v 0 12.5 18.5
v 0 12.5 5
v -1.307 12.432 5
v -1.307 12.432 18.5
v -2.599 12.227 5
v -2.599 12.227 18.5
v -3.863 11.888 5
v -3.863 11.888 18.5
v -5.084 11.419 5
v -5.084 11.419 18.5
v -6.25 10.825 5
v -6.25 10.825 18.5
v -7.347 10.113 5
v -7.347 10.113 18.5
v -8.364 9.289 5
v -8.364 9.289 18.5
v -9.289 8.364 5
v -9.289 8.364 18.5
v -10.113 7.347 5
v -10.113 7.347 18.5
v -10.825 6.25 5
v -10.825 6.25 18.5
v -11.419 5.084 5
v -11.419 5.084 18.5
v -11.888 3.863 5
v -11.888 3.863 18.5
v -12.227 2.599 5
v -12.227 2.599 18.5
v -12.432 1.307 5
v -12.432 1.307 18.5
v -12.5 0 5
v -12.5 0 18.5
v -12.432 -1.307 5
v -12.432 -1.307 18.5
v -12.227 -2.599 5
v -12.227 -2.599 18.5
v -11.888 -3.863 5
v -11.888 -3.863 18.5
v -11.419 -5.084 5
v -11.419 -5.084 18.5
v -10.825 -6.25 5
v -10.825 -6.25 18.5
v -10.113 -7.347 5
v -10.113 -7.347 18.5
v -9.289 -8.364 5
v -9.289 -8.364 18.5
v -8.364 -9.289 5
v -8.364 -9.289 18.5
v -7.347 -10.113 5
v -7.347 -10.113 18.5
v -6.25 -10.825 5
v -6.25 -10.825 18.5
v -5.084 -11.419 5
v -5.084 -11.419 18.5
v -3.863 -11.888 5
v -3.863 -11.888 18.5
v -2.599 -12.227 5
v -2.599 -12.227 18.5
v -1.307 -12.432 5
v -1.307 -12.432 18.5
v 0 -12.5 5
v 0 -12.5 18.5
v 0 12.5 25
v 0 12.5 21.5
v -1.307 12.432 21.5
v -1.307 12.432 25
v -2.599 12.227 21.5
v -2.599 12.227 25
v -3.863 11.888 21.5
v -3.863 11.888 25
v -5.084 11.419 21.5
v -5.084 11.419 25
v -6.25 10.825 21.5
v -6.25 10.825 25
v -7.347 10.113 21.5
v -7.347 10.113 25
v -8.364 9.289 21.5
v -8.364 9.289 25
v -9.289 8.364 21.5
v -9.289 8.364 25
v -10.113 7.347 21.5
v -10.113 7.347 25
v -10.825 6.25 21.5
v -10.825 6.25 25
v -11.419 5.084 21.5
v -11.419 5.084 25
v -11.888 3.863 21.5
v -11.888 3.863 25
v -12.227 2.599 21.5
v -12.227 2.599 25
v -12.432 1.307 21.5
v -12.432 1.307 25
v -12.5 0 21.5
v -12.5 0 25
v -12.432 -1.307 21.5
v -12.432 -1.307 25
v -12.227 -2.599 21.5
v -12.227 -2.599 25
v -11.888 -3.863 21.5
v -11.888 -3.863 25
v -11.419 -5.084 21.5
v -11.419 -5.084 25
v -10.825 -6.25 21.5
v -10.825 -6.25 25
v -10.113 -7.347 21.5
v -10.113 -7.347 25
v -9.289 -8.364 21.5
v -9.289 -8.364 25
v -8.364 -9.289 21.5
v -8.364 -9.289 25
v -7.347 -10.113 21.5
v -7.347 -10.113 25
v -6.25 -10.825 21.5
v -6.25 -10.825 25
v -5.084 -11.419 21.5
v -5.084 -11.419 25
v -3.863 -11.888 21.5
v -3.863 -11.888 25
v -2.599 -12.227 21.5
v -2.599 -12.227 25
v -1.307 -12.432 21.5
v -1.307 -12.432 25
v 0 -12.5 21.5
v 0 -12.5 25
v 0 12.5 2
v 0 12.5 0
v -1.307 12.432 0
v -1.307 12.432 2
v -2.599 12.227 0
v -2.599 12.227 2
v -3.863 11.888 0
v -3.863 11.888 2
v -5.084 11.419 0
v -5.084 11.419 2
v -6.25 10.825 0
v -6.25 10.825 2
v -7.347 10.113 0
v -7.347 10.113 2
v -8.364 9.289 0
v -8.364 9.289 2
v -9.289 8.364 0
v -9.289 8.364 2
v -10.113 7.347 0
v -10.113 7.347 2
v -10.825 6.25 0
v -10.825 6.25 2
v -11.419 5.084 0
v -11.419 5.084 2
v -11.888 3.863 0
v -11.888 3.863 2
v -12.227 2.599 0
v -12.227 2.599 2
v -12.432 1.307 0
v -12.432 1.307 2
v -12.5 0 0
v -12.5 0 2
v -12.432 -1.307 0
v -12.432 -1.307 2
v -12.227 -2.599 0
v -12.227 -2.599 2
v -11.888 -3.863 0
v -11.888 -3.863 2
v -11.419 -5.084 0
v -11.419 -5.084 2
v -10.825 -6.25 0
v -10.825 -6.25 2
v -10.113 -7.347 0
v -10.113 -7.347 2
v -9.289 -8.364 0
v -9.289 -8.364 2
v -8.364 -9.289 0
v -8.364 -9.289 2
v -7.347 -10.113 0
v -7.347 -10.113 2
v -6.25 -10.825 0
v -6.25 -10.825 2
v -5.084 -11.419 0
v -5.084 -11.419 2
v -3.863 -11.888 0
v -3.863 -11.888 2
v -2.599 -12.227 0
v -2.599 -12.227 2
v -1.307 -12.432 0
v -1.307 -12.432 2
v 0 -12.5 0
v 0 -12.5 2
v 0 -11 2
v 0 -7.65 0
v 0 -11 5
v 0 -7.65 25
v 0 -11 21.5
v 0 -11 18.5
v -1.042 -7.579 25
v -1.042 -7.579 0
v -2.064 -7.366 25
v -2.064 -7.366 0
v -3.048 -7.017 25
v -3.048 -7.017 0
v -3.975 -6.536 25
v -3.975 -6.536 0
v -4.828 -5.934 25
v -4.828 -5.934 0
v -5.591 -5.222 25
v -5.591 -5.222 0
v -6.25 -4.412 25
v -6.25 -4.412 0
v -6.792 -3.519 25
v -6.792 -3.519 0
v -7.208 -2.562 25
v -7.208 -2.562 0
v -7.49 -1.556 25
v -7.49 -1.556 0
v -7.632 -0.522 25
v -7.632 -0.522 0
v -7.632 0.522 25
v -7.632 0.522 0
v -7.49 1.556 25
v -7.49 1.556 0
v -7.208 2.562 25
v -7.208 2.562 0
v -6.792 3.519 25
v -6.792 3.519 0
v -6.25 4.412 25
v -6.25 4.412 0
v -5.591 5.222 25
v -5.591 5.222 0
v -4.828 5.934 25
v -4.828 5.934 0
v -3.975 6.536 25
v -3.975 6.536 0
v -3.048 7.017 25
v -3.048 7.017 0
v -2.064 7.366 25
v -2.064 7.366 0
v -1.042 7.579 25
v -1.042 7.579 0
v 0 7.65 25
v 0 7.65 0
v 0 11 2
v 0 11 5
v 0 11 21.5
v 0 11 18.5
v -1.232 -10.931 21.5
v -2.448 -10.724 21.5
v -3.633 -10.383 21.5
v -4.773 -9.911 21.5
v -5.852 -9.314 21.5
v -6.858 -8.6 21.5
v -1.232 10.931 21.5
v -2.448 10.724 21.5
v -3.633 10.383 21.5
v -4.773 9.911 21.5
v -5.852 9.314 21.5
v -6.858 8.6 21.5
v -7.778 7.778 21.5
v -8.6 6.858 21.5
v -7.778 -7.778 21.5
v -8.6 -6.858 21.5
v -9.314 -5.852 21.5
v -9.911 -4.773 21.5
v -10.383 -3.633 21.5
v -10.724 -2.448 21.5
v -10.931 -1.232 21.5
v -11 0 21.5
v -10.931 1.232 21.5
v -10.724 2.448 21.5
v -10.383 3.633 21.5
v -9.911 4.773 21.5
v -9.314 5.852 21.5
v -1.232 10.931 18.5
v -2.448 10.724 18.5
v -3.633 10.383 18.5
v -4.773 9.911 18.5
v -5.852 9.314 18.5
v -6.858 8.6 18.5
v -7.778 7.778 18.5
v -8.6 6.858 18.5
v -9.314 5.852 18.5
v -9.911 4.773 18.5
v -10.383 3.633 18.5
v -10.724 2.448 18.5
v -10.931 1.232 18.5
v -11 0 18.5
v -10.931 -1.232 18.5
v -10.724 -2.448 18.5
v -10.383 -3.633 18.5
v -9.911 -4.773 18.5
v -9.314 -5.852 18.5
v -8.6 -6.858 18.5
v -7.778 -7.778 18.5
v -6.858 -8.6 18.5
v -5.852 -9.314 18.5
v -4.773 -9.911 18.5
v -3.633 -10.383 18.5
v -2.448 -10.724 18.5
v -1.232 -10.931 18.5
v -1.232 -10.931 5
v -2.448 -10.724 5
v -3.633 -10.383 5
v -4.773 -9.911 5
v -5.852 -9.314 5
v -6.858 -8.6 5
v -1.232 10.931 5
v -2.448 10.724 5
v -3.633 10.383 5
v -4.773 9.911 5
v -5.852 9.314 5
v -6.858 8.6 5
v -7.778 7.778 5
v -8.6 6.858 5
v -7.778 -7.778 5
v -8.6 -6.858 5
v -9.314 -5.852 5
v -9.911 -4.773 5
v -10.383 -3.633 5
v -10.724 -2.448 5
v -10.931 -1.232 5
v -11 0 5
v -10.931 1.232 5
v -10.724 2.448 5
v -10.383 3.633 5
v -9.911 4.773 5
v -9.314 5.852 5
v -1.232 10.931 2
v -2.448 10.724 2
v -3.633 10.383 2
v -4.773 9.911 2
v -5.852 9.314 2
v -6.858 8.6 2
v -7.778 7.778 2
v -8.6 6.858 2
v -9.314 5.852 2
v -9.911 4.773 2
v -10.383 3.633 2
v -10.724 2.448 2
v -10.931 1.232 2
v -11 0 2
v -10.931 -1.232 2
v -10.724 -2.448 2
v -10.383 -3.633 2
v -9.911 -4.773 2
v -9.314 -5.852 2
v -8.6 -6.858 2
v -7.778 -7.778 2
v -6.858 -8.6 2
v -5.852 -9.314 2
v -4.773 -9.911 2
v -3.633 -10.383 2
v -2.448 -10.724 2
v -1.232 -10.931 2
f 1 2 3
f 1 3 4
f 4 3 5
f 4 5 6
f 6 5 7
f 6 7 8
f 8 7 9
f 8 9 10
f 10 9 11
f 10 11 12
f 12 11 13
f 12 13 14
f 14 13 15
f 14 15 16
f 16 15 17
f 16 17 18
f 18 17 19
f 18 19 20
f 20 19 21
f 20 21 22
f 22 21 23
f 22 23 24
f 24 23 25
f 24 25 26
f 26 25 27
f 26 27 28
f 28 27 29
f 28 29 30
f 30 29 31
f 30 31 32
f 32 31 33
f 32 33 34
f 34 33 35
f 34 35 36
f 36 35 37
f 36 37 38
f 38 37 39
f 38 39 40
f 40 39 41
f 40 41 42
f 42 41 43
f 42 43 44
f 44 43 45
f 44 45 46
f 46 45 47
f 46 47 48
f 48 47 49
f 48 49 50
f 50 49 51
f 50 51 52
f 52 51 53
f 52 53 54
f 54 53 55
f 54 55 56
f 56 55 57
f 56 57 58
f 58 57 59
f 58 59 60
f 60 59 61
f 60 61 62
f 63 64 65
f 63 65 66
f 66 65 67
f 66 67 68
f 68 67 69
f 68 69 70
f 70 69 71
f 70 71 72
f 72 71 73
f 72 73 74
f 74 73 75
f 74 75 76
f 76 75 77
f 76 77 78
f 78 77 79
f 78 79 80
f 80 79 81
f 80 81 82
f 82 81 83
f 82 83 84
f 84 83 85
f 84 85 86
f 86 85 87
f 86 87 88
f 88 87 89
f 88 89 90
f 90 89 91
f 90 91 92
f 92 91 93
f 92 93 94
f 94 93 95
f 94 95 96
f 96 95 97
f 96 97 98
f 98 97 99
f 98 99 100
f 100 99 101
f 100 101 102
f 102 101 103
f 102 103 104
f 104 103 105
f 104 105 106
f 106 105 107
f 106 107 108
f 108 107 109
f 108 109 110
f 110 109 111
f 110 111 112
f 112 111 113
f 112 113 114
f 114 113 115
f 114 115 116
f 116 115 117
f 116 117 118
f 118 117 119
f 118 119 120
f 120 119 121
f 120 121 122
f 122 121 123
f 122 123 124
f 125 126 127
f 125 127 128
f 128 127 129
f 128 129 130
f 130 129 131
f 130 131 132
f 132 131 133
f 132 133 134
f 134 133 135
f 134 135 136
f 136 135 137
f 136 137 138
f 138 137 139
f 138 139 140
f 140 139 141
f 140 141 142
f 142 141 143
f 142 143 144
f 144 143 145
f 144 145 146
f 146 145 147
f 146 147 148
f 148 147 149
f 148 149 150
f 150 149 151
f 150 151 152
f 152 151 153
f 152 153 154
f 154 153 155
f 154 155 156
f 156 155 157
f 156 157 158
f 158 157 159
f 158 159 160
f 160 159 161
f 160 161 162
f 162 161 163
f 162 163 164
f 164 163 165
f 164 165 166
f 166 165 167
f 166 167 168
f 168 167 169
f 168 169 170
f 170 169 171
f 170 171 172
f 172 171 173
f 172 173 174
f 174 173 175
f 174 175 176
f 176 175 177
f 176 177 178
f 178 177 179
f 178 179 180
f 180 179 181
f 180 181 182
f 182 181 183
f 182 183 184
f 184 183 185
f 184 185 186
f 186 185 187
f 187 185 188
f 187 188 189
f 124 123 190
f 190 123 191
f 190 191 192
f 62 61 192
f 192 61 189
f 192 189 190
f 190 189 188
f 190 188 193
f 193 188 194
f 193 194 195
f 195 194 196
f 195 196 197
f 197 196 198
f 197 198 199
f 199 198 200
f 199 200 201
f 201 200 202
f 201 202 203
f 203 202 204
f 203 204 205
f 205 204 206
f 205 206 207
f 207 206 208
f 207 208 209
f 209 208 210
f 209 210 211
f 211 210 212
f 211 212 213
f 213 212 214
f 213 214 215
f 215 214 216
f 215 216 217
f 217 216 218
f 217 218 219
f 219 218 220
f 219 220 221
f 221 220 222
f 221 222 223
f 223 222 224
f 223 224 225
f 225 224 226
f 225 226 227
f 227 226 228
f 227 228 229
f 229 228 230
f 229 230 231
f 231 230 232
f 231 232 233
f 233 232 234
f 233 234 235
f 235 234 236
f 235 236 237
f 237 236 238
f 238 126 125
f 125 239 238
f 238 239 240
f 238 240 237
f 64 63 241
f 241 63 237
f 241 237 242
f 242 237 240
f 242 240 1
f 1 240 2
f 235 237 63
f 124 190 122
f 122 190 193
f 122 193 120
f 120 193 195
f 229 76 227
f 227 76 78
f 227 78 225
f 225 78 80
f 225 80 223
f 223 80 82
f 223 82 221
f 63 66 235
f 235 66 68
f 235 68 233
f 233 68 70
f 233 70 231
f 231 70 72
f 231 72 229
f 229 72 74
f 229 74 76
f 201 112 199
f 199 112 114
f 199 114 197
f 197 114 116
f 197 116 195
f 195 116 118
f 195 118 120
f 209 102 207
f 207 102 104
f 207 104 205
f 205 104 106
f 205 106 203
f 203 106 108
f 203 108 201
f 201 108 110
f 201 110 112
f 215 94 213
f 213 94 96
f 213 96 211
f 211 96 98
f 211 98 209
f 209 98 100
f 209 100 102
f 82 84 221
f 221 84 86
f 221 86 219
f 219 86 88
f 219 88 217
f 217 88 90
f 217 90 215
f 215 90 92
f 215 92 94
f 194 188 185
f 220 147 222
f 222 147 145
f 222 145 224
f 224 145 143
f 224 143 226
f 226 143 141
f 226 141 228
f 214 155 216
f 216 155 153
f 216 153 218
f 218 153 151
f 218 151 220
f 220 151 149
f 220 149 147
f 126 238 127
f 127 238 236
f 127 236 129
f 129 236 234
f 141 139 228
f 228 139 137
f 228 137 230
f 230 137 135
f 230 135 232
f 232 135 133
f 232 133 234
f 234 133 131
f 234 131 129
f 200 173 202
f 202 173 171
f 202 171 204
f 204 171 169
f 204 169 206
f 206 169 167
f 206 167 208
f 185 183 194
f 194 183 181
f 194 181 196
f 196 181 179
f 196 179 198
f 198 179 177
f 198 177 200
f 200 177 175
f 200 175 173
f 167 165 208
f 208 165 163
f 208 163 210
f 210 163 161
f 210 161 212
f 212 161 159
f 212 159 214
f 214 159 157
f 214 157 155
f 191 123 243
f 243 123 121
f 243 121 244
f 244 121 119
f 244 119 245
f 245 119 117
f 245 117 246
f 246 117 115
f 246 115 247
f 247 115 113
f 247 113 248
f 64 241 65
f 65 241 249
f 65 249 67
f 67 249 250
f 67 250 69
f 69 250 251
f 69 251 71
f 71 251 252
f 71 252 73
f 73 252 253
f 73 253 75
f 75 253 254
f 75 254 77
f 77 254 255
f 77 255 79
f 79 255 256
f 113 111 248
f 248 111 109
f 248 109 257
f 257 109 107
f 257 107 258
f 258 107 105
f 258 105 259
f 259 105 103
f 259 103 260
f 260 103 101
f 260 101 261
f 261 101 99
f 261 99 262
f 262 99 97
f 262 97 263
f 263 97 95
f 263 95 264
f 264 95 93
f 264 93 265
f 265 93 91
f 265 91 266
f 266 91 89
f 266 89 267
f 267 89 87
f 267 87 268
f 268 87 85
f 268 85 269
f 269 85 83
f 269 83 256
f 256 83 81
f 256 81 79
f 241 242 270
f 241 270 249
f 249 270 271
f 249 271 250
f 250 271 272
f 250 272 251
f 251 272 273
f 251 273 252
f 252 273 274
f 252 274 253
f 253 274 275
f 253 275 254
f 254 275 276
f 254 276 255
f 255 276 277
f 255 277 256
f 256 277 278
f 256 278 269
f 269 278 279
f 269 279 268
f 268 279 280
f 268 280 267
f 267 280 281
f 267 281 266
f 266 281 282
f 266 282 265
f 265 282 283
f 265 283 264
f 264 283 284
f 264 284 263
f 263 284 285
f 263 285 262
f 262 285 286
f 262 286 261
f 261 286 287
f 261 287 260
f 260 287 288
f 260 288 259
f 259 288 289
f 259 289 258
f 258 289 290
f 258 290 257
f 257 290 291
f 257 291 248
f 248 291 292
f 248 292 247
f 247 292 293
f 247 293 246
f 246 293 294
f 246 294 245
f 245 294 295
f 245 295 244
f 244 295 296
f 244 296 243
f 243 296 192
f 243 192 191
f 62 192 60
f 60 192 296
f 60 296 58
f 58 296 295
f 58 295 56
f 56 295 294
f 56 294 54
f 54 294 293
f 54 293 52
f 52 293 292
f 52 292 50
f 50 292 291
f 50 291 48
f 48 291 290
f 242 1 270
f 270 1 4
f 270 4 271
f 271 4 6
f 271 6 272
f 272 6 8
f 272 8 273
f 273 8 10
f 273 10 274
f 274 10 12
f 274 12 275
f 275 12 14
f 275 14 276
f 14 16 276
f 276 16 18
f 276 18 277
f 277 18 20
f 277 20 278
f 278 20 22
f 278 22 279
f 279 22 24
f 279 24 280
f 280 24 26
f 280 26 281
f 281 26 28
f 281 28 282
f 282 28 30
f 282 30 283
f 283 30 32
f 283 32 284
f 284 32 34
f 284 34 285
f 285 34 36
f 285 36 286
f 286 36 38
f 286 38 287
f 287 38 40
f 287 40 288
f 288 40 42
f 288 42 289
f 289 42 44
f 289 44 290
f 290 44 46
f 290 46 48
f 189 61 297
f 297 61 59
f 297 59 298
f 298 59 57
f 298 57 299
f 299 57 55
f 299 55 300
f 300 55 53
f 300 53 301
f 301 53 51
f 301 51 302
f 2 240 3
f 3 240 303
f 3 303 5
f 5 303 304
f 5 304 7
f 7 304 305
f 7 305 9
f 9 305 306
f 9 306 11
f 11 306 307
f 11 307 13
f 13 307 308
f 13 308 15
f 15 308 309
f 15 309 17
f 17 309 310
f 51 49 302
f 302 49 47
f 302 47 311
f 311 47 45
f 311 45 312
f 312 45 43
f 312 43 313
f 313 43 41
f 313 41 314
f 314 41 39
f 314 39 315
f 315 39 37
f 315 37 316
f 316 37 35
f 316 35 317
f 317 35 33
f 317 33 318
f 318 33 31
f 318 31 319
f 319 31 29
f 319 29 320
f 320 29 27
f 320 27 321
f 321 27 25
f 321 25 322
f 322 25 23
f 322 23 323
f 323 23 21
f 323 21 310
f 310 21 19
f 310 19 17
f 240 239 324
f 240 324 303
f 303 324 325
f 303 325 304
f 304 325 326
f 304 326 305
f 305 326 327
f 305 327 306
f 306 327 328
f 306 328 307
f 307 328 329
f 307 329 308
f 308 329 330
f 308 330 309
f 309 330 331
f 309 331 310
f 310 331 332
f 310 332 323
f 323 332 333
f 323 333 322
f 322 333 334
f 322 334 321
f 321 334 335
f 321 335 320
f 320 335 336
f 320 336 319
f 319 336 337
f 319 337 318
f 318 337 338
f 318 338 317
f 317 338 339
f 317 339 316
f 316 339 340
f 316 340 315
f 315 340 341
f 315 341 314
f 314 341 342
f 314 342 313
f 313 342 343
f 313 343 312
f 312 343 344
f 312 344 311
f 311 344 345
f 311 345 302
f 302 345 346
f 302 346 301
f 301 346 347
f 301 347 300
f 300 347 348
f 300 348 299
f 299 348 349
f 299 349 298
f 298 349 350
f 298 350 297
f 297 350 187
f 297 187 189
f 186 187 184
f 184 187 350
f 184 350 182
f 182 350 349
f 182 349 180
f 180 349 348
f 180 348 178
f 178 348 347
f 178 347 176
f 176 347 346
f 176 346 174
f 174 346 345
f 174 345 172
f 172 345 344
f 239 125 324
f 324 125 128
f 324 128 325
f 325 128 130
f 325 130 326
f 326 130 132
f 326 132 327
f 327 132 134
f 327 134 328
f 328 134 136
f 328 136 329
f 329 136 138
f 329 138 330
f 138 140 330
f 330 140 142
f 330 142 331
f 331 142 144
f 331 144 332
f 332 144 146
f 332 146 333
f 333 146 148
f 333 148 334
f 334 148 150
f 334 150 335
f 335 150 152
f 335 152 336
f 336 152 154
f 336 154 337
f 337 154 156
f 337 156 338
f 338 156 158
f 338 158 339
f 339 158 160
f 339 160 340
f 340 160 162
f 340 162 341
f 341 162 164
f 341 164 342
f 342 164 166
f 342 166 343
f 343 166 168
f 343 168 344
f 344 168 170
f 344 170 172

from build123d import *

# Parameters (mm, degrees)
Y_KSEKLIK_EKSTR_ZYON1_DEPTH = 25
IZIM2_W                     = 3
IZIM2_H                     = 1.5


with BuildPart() as part:
    # Çizim1 → Yükseklik-Ekstrüzyon1 (new body)
    with BuildSketch(Plane.XY):
        with BuildLine():
            Line((0, 12.5), (0, 7.65))
            ThreePointArc((0, 7.65), (-7.65, 0), (0, -7.65))
            Line((0, -7.65), (0, -12.5))
            ThreePointArc((0, -12.5), (-12.5, 0), (0, 12.5))
        make_face()
    extrude(amount=Y_KSEKLIK_EKSTR_ZYON1_DEPTH)

    # Çizim2 → Kes-Döndür1 (revolve, cut)
    with BuildSketch(Plane(origin=(0, 0, 0), x_dir=(0, 0, -1), z_dir=(1, 0, 0))):
        with Locations((-20, 11.75)):
            Rectangle(IZIM2_W, IZIM2_H)
        with Locations((-3.5, 11.75)):
            Rectangle(IZIM2_W, IZIM2_H)
    revolve(axis=Axis((0, 0, 0), (0, 0, 1)), mode=Mode.SUBTRACT)


solid = part.part
